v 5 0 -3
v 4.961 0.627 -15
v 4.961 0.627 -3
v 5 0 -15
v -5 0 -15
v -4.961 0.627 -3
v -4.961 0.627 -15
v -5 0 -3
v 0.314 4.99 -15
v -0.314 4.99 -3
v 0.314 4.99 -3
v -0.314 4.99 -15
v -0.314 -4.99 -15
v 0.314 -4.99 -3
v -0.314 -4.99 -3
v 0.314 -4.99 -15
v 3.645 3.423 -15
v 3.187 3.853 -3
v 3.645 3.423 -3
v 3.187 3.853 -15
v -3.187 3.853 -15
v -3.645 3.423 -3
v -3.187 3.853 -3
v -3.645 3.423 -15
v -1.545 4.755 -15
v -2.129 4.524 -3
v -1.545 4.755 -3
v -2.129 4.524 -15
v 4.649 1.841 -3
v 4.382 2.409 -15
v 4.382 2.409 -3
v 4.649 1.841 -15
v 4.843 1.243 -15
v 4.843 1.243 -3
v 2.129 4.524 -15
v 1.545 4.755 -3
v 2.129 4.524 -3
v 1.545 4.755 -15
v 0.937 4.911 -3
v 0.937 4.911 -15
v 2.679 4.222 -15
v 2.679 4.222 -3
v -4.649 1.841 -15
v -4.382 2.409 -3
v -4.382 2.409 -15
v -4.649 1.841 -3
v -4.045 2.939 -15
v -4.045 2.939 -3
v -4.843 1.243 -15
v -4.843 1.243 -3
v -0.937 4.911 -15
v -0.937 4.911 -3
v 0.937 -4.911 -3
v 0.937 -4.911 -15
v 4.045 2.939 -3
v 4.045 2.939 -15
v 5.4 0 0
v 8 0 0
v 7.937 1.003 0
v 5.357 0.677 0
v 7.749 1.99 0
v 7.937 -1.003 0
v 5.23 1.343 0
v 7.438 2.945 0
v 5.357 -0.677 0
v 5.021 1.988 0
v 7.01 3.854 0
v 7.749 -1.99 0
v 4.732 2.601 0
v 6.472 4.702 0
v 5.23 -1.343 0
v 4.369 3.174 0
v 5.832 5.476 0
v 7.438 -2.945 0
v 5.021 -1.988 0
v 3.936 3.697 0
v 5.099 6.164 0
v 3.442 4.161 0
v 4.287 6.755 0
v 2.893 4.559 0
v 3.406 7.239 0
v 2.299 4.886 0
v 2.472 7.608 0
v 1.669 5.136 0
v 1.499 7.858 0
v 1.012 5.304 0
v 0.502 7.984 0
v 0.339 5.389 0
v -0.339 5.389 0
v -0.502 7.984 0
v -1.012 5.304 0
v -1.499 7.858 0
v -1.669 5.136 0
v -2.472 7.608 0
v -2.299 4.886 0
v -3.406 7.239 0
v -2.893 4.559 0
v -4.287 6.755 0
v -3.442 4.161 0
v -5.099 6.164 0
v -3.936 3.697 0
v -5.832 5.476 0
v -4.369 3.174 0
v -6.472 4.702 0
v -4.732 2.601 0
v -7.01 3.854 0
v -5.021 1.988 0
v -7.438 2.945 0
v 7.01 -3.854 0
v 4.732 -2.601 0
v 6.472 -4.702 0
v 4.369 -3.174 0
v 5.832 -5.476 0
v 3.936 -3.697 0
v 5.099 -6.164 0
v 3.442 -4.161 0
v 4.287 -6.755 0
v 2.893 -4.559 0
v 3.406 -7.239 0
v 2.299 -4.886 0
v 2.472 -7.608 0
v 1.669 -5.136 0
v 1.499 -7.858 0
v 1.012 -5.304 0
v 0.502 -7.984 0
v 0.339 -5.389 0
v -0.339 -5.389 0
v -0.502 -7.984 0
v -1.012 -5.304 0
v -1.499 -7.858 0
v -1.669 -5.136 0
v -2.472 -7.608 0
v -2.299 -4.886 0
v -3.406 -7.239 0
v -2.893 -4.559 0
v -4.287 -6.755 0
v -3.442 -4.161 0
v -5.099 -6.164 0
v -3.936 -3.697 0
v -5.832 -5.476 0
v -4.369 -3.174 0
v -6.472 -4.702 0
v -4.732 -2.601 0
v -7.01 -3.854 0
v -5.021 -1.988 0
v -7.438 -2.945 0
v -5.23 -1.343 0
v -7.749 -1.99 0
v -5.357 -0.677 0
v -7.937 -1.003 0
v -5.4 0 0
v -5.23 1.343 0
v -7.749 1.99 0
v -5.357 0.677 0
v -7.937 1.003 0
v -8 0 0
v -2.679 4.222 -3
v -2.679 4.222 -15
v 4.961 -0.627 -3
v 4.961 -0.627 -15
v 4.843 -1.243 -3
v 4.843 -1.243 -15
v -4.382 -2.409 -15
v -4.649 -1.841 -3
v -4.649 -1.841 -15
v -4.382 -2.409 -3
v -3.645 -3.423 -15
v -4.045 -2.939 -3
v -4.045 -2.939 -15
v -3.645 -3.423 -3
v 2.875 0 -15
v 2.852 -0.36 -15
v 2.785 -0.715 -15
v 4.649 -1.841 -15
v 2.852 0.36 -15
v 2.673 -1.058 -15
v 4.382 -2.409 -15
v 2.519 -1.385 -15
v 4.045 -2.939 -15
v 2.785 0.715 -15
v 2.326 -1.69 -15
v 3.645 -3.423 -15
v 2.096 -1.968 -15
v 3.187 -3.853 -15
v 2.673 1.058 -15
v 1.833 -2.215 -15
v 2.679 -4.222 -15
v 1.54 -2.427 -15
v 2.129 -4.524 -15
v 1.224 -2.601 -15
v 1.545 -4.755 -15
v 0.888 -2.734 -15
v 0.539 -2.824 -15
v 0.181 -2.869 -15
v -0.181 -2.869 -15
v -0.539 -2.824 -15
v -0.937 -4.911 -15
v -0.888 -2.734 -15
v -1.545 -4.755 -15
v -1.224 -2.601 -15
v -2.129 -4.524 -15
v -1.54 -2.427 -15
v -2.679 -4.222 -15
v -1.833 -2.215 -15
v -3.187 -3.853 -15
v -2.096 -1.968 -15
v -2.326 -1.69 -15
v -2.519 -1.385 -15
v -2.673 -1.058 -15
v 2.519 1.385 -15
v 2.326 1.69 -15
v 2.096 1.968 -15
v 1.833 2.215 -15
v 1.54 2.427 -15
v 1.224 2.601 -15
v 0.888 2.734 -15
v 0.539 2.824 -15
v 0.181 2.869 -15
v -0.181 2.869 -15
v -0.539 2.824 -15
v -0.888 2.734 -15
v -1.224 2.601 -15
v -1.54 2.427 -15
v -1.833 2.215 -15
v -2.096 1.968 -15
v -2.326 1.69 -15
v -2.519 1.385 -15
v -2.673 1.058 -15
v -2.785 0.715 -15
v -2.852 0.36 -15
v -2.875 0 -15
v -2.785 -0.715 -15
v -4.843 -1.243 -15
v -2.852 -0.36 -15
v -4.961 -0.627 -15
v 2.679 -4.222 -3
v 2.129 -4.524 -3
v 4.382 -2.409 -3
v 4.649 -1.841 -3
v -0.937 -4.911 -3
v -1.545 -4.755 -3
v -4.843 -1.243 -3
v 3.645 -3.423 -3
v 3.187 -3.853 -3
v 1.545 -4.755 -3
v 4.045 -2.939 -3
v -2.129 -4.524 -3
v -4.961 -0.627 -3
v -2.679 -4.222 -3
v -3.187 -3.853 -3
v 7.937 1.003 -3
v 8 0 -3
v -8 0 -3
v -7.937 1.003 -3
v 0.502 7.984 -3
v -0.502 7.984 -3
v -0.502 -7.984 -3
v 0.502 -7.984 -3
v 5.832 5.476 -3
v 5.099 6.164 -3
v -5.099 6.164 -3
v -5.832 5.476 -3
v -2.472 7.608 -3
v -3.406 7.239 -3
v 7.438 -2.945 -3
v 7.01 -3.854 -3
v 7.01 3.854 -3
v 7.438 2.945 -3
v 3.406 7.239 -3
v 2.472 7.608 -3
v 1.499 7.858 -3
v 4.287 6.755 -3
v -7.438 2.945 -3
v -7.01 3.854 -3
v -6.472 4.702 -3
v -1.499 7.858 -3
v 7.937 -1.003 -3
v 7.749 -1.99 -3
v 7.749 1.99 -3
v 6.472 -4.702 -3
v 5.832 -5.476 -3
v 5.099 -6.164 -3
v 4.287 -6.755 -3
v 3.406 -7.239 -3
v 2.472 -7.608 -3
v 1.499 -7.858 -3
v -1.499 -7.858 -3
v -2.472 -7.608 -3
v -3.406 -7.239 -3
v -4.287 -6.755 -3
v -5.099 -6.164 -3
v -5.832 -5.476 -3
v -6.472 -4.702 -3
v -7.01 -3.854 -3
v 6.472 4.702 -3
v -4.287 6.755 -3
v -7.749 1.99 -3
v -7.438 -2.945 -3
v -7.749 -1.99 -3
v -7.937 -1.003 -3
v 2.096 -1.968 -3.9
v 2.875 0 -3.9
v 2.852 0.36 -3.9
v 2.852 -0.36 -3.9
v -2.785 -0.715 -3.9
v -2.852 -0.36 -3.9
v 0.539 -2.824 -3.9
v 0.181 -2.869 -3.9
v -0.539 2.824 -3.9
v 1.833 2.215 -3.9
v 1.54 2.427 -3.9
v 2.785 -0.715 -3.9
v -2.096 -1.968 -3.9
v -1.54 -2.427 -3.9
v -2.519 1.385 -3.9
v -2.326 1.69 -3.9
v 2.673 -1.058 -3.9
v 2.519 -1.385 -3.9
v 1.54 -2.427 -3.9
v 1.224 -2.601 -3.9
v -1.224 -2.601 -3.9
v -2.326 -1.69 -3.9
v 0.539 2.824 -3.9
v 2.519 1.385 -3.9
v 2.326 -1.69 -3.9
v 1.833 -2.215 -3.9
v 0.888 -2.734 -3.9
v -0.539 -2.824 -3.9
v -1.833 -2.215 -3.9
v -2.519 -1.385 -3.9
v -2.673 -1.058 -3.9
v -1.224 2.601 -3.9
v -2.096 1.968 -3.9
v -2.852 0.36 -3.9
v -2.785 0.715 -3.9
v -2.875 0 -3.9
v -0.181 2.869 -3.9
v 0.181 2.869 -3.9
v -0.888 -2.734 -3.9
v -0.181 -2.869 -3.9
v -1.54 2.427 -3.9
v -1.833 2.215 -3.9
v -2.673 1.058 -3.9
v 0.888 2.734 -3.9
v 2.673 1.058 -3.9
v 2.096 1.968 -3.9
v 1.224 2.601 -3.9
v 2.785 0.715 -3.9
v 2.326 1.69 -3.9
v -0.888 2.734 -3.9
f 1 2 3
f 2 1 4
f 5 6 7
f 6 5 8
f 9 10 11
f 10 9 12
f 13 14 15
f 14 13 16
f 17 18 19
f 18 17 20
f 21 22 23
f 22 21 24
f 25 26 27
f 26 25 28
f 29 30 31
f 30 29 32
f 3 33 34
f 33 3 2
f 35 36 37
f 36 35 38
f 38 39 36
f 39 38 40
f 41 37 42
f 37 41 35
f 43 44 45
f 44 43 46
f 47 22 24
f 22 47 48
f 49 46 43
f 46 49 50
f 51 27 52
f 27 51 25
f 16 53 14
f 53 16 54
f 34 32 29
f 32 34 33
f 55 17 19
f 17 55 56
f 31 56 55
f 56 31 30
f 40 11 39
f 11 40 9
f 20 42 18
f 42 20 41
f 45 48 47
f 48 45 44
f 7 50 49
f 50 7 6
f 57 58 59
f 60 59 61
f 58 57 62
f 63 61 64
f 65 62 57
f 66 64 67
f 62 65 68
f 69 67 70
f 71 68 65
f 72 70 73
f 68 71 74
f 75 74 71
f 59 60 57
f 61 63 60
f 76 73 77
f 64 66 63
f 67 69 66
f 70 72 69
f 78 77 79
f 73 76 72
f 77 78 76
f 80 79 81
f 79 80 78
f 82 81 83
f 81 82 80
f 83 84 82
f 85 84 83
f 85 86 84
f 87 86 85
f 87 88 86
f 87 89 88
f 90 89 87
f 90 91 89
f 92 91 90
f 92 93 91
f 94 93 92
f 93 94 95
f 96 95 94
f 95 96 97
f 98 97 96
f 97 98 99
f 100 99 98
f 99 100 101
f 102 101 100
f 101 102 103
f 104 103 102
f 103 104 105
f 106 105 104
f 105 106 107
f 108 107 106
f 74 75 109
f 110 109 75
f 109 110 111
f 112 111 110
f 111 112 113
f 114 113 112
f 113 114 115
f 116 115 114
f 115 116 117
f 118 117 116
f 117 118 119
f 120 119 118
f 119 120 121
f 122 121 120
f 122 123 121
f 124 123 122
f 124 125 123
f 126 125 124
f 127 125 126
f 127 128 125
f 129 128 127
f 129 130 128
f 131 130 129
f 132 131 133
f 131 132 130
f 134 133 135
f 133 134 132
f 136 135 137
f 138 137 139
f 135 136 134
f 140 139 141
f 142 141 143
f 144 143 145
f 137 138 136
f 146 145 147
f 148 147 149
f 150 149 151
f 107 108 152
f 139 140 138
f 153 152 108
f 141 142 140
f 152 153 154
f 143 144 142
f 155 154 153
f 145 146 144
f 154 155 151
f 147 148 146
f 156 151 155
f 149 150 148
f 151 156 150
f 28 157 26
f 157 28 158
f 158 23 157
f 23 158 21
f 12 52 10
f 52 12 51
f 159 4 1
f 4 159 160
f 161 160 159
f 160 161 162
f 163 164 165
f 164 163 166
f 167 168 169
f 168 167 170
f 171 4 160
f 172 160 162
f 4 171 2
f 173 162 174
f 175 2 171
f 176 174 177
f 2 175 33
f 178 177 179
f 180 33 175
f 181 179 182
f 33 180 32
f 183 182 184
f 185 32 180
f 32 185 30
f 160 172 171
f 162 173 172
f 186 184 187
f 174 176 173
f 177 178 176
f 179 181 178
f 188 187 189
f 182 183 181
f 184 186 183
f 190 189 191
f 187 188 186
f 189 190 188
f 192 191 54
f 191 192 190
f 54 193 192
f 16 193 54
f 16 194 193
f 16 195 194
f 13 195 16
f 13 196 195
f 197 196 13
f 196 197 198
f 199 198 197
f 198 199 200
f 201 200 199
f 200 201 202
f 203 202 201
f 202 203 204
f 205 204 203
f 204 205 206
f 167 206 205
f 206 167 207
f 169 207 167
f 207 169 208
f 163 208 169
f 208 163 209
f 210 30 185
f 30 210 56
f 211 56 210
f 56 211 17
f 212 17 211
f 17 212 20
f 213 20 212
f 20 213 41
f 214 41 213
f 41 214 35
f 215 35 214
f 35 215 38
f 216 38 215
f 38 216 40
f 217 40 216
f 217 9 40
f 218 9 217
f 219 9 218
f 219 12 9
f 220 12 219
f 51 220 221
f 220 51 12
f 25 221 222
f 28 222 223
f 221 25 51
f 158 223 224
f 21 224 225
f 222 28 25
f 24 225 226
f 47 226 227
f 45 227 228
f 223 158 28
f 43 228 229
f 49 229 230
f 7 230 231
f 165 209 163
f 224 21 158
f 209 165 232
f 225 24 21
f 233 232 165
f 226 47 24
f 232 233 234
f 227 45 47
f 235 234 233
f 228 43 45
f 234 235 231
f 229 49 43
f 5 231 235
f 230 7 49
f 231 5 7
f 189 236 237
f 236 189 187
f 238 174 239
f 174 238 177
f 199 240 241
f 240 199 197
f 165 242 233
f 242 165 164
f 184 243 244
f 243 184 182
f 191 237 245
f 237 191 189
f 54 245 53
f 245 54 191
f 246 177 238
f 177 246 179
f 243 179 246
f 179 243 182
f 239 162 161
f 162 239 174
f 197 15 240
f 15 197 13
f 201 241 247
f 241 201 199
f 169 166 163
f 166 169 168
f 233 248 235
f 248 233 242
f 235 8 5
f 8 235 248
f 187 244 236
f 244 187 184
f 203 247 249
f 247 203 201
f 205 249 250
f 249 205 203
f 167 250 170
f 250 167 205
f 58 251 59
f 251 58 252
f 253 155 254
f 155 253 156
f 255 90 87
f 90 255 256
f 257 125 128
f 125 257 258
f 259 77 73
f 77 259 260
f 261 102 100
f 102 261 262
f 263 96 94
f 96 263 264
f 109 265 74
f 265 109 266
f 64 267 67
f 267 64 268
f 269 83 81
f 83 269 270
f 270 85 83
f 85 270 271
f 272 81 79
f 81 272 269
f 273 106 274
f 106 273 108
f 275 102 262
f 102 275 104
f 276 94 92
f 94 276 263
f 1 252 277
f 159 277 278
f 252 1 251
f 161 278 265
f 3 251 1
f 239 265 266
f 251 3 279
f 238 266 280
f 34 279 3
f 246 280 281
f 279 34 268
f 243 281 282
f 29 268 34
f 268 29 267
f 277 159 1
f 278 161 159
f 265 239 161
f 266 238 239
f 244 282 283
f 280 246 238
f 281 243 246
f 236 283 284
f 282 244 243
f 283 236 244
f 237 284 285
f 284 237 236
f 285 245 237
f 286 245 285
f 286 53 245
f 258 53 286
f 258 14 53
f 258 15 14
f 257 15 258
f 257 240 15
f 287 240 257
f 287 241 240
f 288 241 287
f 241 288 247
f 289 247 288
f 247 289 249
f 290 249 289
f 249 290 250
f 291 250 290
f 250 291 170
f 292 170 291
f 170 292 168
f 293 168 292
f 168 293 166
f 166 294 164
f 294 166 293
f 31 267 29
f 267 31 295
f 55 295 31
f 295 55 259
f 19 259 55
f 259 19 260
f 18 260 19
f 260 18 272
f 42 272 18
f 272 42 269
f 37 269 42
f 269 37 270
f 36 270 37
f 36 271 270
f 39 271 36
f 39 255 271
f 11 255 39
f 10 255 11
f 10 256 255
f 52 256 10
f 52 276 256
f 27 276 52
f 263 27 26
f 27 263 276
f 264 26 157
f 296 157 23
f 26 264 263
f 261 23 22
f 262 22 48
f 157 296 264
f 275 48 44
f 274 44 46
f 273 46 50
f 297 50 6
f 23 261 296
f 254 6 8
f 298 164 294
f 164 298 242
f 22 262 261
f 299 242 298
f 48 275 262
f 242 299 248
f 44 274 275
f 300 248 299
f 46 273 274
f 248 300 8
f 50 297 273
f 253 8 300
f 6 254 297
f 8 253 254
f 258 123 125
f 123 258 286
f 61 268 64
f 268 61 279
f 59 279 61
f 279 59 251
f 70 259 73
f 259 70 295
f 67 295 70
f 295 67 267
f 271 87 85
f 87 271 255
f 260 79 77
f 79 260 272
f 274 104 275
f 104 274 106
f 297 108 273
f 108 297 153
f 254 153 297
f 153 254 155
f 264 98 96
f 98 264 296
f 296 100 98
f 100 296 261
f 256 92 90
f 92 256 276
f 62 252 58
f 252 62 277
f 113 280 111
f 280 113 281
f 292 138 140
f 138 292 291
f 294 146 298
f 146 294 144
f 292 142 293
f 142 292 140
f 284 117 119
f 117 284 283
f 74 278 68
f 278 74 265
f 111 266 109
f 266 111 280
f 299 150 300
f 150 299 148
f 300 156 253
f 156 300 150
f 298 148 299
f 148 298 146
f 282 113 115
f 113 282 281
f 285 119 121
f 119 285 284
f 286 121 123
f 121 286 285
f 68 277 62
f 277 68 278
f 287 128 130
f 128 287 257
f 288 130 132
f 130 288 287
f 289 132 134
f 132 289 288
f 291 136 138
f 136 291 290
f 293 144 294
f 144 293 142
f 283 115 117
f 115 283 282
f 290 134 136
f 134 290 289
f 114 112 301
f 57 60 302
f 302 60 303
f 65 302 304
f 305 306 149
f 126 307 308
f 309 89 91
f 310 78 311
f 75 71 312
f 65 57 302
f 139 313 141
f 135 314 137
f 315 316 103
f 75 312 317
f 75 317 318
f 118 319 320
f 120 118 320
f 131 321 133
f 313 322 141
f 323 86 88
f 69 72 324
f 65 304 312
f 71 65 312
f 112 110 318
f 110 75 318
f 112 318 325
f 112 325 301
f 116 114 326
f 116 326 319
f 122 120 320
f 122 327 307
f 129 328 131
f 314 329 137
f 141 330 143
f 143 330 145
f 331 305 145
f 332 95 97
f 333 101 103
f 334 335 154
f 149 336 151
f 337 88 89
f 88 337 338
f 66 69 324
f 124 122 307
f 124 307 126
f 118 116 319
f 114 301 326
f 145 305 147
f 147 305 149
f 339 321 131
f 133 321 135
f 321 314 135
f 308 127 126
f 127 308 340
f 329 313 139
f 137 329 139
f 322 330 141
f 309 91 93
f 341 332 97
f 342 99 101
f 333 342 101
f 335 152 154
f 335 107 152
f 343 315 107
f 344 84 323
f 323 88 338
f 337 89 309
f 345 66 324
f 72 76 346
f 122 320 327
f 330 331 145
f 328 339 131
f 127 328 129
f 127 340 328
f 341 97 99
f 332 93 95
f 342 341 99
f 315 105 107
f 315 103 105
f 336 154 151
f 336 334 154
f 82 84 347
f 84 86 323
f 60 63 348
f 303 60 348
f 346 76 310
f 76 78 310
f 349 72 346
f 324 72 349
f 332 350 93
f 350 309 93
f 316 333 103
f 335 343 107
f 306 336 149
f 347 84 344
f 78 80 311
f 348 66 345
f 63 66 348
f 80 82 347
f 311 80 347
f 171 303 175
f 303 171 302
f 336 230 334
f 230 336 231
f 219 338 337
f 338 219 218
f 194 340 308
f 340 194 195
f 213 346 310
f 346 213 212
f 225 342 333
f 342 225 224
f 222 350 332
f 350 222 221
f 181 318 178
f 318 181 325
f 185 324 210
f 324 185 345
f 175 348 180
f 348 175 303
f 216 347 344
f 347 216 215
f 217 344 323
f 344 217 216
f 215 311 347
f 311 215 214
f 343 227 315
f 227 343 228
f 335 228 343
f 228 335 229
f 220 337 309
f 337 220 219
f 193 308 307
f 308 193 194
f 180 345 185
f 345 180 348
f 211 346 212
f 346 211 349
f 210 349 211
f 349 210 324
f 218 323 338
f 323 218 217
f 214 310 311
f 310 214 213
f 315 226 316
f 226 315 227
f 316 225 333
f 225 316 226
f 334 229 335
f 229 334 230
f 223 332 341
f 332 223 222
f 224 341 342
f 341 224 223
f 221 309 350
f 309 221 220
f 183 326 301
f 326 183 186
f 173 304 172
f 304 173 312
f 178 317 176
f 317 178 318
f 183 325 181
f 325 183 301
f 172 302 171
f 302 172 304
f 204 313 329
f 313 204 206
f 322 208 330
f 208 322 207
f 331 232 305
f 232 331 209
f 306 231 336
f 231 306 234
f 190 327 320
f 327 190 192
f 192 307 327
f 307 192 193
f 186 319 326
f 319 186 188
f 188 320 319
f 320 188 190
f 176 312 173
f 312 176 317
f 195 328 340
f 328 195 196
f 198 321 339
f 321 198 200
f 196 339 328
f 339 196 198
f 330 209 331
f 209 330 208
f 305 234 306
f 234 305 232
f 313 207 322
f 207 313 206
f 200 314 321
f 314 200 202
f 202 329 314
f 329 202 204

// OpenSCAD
$fn = 50;


difference() {
	union() {
		translate(v = [0, 0, -15.0000000000]) {
			cylinder(h = 15, r = 5.0000000000);
		}
		translate(v = [0, 0, -3.0000000000]) {
			cylinder(h = 3, r = 8.0000000000);
		}
	}
	union() {
		translate(v = [0, 0, 0]) {
			rotate(a = [0, 0, 0]) {
				difference() {
					union() {
						#translate(v = [0, 0, -15.0000000000]) {
							cylinder(h = 15, r = 2.6000000000);
						}
						#translate(v = [0, 0, -3.9000000000]) {
							cylinder(h = 3.9000000000, r1 = 2.8750000000, r2 = 5.4000000000);
						}
						#translate(v = [0, 0, -15.0000000000]) {
							cylinder(h = 15, r = 2.8750000000);
						}
						#translate(v = [0, 0, -15.0000000000]) {
							cylinder(h = 15, r = 2.6000000000);
						}
					}
					union();
				}
			}
		}
	}
}
